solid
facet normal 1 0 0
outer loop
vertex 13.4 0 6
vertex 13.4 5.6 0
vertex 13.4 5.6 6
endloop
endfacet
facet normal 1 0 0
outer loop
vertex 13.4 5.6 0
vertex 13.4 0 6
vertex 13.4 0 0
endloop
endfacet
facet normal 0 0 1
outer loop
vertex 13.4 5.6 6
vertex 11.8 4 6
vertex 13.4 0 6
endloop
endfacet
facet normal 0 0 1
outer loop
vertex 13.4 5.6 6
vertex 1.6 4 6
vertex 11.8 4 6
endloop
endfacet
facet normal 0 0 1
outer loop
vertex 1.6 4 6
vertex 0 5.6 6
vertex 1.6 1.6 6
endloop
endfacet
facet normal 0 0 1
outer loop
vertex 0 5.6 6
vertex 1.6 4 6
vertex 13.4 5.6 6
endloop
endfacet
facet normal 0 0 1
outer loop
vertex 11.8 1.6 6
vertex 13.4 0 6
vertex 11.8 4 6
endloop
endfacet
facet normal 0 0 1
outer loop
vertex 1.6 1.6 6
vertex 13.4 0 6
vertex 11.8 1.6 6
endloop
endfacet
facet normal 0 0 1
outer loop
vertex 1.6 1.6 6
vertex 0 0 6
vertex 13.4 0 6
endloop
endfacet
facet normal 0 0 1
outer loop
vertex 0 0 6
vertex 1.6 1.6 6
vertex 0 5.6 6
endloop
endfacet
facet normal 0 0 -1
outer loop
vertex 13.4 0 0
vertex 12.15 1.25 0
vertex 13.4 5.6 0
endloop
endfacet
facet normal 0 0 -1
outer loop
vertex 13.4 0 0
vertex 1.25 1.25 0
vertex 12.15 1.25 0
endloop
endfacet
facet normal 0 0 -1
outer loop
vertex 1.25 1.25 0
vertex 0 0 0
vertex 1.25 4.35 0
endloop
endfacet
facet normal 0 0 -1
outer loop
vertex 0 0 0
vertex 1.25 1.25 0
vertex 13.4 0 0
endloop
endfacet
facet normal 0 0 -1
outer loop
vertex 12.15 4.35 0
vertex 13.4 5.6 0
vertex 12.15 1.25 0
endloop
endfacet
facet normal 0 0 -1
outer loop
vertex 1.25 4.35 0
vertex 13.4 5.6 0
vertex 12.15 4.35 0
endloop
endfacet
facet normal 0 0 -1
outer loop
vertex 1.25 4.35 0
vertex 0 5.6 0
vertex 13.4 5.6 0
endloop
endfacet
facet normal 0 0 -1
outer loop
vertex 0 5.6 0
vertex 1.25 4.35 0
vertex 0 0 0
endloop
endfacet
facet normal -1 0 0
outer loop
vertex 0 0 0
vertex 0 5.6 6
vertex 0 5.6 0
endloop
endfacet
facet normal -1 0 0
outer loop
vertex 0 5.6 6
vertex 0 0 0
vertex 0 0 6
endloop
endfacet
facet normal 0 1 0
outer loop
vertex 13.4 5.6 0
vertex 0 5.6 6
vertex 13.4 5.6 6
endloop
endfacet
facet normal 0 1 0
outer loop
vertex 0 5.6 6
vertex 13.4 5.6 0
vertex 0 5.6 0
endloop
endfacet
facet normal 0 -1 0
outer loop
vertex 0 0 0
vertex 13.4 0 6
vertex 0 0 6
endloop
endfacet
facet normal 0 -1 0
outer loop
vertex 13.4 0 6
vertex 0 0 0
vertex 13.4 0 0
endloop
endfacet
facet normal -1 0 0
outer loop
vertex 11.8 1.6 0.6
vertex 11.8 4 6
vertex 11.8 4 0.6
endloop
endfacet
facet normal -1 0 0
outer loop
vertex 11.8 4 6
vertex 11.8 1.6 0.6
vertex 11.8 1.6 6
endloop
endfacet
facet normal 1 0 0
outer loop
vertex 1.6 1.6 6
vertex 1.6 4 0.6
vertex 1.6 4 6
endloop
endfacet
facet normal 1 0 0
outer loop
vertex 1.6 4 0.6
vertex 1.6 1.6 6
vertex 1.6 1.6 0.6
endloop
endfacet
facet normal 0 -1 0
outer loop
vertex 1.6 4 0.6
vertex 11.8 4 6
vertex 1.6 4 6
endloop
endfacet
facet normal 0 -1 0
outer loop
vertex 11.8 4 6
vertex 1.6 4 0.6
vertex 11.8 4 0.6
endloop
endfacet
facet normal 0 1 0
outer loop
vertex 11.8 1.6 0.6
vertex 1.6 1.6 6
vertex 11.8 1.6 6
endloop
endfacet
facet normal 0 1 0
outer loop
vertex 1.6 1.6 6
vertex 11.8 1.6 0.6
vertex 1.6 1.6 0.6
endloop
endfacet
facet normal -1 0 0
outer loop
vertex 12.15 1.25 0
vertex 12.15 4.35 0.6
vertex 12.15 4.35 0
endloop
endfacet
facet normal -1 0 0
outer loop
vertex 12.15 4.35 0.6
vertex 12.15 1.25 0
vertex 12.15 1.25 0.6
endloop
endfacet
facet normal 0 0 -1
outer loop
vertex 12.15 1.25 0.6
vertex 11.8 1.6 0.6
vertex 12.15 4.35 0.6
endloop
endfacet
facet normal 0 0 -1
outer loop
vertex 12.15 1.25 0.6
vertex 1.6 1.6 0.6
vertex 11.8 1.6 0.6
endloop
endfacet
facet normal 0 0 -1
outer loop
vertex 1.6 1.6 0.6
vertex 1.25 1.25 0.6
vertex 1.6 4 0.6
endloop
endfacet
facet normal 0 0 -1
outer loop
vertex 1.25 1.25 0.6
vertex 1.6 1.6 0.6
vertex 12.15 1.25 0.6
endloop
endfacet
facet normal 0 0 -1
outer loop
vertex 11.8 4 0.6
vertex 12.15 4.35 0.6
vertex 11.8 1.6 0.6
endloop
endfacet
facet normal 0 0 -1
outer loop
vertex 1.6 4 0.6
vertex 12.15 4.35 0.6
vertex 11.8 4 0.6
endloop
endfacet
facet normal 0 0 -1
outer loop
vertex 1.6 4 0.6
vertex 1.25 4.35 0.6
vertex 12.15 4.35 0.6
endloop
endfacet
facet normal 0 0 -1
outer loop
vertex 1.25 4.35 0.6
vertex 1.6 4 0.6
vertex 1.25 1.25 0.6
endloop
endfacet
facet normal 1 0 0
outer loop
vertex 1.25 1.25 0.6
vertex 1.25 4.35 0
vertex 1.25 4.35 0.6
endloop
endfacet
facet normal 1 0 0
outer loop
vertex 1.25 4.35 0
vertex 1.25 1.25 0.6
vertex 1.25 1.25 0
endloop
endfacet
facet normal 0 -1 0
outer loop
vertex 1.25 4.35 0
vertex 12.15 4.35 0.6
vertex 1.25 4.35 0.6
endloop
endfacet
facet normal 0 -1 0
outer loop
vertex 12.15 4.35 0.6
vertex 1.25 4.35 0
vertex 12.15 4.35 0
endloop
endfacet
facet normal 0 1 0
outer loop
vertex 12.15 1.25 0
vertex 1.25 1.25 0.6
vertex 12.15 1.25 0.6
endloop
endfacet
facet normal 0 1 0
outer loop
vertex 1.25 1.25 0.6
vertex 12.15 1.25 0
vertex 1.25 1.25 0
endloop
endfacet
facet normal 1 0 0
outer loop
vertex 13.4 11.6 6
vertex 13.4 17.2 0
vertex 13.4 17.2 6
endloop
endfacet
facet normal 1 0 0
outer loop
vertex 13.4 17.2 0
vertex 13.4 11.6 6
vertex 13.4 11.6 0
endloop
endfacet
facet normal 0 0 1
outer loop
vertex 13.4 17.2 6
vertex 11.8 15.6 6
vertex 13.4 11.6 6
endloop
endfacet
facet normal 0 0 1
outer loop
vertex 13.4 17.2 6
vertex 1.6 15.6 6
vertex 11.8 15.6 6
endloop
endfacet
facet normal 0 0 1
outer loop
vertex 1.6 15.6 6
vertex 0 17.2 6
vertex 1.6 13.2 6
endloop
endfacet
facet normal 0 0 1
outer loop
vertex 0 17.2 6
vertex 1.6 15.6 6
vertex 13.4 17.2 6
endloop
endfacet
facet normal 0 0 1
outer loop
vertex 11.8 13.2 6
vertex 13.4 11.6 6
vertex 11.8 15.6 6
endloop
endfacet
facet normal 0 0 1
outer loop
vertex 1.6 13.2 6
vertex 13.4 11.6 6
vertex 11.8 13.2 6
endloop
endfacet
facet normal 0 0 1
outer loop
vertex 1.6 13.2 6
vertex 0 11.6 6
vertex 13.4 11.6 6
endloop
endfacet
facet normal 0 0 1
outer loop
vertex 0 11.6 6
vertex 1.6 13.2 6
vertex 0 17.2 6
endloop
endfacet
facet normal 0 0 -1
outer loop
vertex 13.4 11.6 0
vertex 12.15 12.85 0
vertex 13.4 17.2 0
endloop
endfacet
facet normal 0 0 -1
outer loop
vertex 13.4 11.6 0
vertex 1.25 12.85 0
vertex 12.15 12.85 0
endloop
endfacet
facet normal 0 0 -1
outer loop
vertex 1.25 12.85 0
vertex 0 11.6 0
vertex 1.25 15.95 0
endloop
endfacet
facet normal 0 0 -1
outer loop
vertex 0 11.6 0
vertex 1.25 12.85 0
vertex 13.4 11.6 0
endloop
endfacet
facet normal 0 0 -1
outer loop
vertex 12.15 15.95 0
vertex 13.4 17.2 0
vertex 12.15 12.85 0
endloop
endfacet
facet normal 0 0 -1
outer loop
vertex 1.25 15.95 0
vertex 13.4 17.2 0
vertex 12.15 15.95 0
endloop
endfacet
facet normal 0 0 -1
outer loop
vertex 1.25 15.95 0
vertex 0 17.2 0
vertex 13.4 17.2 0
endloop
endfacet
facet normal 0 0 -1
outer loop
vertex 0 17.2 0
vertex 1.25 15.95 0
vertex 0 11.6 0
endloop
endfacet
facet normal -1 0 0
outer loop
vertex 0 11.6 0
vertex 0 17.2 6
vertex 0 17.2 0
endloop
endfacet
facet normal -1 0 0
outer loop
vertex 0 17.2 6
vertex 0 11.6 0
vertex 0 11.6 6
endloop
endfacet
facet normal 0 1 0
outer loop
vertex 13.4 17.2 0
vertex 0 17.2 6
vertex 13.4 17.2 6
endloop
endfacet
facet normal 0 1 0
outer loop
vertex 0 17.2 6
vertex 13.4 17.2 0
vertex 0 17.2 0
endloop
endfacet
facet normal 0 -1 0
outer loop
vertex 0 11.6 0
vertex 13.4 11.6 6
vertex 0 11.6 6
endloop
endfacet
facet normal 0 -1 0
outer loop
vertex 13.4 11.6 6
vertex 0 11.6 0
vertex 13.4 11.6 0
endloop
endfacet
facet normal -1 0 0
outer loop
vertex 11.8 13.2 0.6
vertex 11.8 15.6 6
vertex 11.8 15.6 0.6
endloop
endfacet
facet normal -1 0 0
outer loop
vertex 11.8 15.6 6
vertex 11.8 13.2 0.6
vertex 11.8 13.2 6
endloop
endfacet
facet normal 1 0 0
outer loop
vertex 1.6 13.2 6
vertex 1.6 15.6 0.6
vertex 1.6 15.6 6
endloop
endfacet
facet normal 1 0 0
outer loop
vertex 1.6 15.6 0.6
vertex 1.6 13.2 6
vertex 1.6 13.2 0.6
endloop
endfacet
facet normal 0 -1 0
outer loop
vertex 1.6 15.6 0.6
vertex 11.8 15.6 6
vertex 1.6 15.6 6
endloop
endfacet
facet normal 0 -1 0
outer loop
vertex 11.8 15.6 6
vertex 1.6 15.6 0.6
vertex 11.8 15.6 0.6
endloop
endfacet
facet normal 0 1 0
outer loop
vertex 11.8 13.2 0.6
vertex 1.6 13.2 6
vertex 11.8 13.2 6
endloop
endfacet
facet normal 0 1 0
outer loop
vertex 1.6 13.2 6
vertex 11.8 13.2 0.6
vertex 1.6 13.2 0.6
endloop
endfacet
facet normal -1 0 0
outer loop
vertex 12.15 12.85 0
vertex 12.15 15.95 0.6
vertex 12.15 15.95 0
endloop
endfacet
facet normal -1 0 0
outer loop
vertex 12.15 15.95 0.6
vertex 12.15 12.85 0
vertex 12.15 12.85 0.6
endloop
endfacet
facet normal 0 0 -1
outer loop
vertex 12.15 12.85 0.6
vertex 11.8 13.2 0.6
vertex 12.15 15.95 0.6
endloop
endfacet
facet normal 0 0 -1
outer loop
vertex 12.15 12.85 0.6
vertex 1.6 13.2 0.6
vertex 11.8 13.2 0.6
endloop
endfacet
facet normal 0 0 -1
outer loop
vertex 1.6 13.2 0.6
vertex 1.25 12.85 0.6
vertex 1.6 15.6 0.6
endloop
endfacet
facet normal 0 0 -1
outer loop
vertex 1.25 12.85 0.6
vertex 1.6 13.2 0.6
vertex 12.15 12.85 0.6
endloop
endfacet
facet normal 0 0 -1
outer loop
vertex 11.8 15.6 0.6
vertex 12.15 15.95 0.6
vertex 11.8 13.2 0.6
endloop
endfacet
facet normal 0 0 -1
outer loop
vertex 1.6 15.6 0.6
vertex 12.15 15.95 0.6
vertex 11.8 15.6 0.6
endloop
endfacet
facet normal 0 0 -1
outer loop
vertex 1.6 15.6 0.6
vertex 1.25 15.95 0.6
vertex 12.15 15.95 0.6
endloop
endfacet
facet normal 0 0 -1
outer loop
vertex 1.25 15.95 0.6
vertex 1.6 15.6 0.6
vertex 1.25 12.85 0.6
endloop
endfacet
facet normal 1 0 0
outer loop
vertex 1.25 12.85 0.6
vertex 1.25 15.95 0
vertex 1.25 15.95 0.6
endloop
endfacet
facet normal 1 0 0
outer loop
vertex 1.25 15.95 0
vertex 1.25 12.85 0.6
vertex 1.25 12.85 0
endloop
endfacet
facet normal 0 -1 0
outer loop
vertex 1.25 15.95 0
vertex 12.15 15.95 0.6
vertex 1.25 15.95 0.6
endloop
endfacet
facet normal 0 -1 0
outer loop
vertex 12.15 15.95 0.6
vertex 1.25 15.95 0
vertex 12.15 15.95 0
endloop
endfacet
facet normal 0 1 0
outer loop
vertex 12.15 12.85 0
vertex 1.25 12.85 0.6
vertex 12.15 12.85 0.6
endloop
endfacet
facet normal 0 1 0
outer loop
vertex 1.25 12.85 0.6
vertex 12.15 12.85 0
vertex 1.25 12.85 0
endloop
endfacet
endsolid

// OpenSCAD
// LearnLife NFC Attender — dupont housing retainer collars
// ========================================================
//
//   openscad -o stl/retainer.stl retainer.scad
//
// ── WHAT IT IS ───────────────────────────────────────────────────────────
//
// A collar that pushes over a row of individual dupont housings and gangs
// them into one block, so no single wire can walk off its header pin. One per
// peripheral: the PN532 and the OLED each take four (VCC, GND, SDA, SCL).
// Two are rendered side by side on one plate.
//
// The ESP32 end of every wire is already secure — it lands in a screw
// terminal on the breakout, which cannot vibrate loose (see the breakout
// rationale in params.scad). The peripheral end is a loose moulded shell on a
// header pin, held by nothing but friction, and it is the reason for
// "Cards read intermittently" in the troubleshooting table. Four separate
// housings each backing off a little is the failure; one four-wide block that
// has to lift as a unit is the fix.
//
//        ┌──────────────┐
//        │ ┌──┬──┬──┬──┐│   <- collar, printed as one piece
//        │ │  │  │  │  ││
//        │ └──┴──┴──┴──┘│   <- four dupont housings pushed through it
//        └──────────────┘
//
// ── WHY IT IS STANDALONE ─────────────────────────────────────────────────
//
// It does not touch the enclosure and takes no dimension from it: it clips to
// the connector stack, not to the box. That is deliberate. A bar that pressed
// the housings against something would need to know which way each module's
// header faces and how the wires were dressed, and neither is knowable until
// the bench rig is recorded (docs/measurements.md §8). A collar needs only
// the connector's own dimensions, which are a standard.
//
// ── PRINT ────────────────────────────────────────────────────────────────
//
// Flat on the bed, collar axis vertical. Support-free — the opening is a
// straight rectangular through-hole. ~8 minutes, ~2 g for both.
//
// It has to push on by hand and stay on. If it will not go, raise
// `retainer_grip` in params.scad toward 0; if it falls off, make it more
// negative. Changing it by 0.05 is a noticeable difference.

include <params.scad>

$fa = 1;
$fs = 0.4;

// ══ DERIVED ══════════════════════════════════════════════════════════════

// The housings butt against each other at their moulded width, so the row
// spans n * housing_w — NOT n * pitch, which is the pin spacing and is
// slightly smaller.
row_x = dupont_n * dupont_housing_w;
row_y = dupont_housing_d;

// cut(): the opening has to match a physical part, so it inherits xy_comp.
// retainer_grip is the interference on top of that and is negative.
open_x = cut(row_x + 2 * retainer_grip);
open_y = cut(row_y + 2 * retainer_grip);

outer_x = open_x + 2 * retainer_wall_t;
outer_y = open_y + 2 * retainer_wall_t;

// A one-layer step at the bottom, slightly wider than the opening, so the
// collar finds the housings instead of catching on their corners. A tapered
// lead-in would need a scaled extrude; a step is plain CSG and prints the
// same by hand feel.
lead_in_h = 0.6;
lead_in   = 0.35;

plate_gap = 6;

// ══ CHECKS ═══════════════════════════════════════════════════════════════

assert(retainer_grip <= 0,
       str("retainer_grip is ", retainer_grip,
           " — a positive value makes the collar LOOSER than the housings, ",
           "so it falls off and does nothing. It is an interference fit: use ",
           "0 or a negative number."));

assert(open_x > 0 && open_y > 0,
       str("Collar opening collapsed to ", open_x, " x ", open_y,
           ". retainer_grip is too negative for this housing size."));

assert(retainer_wall_t >= 2 * nozzle_d,
       str("retainer_wall_t (", retainer_wall_t, ") is under two extrusions (",
           2 * nozzle_d, "). The collar would split the first time it is ",
           "pushed on."));

// The collar has to grip a useful fraction of the housing, not perch on its
// lip. Anything under ~3 mm rotates on the row instead of holding it.
assert(retainer_grip_h >= 3.0,
       str("retainer_grip_h (", retainer_grip_h,
           ") is too short to hold the row square. Use 3 mm or more."));

assert(retainer_grip_h >= 4 * layer_h,
       str("retainer_grip_h (", retainer_grip_h, ") is under four layers at ",
           layer_h, "mm — too thin to print with any strength."));

// The lead-in step must not eat the whole wall.
assert(lead_in < retainer_wall_t,
       str("Lead-in step (", lead_in, ") is wider than the wall (",
           retainer_wall_t, "), so the collar has no material at its mouth."));

echo(str("[retainer] collar ", outer_x, " x ", outer_y, " x ",
         retainer_grip_h, "mm, opening ", open_x, " x ", open_y,
         "mm for ", dupont_n, " housings"));

// ══ ENTRY POINT ══════════════════════════════════════════════════════════

plate();

module plate() {
  // Two collars: one for the PN532's header, one for the OLED's.
  for (i = [0, 1])
    translate([0, i * (outer_y + plate_gap), 0])
      collar();
}

module collar() {
  difference() {
    cube([outer_x, outer_y, retainer_grip_h]);

    // Main opening, straight through.
    translate([retainer_wall_t, retainer_wall_t, -0.5])
      cube([open_x, open_y, retainer_grip_h + 1]);

    // Lead-in step at the mouth.
    translate([retainer_wall_t - lead_in, retainer_wall_t - lead_in, -0.01])
      cube([open_x + 2 * lead_in, open_y + 2 * lead_in, lead_in_h + 0.01]);
  }
}
